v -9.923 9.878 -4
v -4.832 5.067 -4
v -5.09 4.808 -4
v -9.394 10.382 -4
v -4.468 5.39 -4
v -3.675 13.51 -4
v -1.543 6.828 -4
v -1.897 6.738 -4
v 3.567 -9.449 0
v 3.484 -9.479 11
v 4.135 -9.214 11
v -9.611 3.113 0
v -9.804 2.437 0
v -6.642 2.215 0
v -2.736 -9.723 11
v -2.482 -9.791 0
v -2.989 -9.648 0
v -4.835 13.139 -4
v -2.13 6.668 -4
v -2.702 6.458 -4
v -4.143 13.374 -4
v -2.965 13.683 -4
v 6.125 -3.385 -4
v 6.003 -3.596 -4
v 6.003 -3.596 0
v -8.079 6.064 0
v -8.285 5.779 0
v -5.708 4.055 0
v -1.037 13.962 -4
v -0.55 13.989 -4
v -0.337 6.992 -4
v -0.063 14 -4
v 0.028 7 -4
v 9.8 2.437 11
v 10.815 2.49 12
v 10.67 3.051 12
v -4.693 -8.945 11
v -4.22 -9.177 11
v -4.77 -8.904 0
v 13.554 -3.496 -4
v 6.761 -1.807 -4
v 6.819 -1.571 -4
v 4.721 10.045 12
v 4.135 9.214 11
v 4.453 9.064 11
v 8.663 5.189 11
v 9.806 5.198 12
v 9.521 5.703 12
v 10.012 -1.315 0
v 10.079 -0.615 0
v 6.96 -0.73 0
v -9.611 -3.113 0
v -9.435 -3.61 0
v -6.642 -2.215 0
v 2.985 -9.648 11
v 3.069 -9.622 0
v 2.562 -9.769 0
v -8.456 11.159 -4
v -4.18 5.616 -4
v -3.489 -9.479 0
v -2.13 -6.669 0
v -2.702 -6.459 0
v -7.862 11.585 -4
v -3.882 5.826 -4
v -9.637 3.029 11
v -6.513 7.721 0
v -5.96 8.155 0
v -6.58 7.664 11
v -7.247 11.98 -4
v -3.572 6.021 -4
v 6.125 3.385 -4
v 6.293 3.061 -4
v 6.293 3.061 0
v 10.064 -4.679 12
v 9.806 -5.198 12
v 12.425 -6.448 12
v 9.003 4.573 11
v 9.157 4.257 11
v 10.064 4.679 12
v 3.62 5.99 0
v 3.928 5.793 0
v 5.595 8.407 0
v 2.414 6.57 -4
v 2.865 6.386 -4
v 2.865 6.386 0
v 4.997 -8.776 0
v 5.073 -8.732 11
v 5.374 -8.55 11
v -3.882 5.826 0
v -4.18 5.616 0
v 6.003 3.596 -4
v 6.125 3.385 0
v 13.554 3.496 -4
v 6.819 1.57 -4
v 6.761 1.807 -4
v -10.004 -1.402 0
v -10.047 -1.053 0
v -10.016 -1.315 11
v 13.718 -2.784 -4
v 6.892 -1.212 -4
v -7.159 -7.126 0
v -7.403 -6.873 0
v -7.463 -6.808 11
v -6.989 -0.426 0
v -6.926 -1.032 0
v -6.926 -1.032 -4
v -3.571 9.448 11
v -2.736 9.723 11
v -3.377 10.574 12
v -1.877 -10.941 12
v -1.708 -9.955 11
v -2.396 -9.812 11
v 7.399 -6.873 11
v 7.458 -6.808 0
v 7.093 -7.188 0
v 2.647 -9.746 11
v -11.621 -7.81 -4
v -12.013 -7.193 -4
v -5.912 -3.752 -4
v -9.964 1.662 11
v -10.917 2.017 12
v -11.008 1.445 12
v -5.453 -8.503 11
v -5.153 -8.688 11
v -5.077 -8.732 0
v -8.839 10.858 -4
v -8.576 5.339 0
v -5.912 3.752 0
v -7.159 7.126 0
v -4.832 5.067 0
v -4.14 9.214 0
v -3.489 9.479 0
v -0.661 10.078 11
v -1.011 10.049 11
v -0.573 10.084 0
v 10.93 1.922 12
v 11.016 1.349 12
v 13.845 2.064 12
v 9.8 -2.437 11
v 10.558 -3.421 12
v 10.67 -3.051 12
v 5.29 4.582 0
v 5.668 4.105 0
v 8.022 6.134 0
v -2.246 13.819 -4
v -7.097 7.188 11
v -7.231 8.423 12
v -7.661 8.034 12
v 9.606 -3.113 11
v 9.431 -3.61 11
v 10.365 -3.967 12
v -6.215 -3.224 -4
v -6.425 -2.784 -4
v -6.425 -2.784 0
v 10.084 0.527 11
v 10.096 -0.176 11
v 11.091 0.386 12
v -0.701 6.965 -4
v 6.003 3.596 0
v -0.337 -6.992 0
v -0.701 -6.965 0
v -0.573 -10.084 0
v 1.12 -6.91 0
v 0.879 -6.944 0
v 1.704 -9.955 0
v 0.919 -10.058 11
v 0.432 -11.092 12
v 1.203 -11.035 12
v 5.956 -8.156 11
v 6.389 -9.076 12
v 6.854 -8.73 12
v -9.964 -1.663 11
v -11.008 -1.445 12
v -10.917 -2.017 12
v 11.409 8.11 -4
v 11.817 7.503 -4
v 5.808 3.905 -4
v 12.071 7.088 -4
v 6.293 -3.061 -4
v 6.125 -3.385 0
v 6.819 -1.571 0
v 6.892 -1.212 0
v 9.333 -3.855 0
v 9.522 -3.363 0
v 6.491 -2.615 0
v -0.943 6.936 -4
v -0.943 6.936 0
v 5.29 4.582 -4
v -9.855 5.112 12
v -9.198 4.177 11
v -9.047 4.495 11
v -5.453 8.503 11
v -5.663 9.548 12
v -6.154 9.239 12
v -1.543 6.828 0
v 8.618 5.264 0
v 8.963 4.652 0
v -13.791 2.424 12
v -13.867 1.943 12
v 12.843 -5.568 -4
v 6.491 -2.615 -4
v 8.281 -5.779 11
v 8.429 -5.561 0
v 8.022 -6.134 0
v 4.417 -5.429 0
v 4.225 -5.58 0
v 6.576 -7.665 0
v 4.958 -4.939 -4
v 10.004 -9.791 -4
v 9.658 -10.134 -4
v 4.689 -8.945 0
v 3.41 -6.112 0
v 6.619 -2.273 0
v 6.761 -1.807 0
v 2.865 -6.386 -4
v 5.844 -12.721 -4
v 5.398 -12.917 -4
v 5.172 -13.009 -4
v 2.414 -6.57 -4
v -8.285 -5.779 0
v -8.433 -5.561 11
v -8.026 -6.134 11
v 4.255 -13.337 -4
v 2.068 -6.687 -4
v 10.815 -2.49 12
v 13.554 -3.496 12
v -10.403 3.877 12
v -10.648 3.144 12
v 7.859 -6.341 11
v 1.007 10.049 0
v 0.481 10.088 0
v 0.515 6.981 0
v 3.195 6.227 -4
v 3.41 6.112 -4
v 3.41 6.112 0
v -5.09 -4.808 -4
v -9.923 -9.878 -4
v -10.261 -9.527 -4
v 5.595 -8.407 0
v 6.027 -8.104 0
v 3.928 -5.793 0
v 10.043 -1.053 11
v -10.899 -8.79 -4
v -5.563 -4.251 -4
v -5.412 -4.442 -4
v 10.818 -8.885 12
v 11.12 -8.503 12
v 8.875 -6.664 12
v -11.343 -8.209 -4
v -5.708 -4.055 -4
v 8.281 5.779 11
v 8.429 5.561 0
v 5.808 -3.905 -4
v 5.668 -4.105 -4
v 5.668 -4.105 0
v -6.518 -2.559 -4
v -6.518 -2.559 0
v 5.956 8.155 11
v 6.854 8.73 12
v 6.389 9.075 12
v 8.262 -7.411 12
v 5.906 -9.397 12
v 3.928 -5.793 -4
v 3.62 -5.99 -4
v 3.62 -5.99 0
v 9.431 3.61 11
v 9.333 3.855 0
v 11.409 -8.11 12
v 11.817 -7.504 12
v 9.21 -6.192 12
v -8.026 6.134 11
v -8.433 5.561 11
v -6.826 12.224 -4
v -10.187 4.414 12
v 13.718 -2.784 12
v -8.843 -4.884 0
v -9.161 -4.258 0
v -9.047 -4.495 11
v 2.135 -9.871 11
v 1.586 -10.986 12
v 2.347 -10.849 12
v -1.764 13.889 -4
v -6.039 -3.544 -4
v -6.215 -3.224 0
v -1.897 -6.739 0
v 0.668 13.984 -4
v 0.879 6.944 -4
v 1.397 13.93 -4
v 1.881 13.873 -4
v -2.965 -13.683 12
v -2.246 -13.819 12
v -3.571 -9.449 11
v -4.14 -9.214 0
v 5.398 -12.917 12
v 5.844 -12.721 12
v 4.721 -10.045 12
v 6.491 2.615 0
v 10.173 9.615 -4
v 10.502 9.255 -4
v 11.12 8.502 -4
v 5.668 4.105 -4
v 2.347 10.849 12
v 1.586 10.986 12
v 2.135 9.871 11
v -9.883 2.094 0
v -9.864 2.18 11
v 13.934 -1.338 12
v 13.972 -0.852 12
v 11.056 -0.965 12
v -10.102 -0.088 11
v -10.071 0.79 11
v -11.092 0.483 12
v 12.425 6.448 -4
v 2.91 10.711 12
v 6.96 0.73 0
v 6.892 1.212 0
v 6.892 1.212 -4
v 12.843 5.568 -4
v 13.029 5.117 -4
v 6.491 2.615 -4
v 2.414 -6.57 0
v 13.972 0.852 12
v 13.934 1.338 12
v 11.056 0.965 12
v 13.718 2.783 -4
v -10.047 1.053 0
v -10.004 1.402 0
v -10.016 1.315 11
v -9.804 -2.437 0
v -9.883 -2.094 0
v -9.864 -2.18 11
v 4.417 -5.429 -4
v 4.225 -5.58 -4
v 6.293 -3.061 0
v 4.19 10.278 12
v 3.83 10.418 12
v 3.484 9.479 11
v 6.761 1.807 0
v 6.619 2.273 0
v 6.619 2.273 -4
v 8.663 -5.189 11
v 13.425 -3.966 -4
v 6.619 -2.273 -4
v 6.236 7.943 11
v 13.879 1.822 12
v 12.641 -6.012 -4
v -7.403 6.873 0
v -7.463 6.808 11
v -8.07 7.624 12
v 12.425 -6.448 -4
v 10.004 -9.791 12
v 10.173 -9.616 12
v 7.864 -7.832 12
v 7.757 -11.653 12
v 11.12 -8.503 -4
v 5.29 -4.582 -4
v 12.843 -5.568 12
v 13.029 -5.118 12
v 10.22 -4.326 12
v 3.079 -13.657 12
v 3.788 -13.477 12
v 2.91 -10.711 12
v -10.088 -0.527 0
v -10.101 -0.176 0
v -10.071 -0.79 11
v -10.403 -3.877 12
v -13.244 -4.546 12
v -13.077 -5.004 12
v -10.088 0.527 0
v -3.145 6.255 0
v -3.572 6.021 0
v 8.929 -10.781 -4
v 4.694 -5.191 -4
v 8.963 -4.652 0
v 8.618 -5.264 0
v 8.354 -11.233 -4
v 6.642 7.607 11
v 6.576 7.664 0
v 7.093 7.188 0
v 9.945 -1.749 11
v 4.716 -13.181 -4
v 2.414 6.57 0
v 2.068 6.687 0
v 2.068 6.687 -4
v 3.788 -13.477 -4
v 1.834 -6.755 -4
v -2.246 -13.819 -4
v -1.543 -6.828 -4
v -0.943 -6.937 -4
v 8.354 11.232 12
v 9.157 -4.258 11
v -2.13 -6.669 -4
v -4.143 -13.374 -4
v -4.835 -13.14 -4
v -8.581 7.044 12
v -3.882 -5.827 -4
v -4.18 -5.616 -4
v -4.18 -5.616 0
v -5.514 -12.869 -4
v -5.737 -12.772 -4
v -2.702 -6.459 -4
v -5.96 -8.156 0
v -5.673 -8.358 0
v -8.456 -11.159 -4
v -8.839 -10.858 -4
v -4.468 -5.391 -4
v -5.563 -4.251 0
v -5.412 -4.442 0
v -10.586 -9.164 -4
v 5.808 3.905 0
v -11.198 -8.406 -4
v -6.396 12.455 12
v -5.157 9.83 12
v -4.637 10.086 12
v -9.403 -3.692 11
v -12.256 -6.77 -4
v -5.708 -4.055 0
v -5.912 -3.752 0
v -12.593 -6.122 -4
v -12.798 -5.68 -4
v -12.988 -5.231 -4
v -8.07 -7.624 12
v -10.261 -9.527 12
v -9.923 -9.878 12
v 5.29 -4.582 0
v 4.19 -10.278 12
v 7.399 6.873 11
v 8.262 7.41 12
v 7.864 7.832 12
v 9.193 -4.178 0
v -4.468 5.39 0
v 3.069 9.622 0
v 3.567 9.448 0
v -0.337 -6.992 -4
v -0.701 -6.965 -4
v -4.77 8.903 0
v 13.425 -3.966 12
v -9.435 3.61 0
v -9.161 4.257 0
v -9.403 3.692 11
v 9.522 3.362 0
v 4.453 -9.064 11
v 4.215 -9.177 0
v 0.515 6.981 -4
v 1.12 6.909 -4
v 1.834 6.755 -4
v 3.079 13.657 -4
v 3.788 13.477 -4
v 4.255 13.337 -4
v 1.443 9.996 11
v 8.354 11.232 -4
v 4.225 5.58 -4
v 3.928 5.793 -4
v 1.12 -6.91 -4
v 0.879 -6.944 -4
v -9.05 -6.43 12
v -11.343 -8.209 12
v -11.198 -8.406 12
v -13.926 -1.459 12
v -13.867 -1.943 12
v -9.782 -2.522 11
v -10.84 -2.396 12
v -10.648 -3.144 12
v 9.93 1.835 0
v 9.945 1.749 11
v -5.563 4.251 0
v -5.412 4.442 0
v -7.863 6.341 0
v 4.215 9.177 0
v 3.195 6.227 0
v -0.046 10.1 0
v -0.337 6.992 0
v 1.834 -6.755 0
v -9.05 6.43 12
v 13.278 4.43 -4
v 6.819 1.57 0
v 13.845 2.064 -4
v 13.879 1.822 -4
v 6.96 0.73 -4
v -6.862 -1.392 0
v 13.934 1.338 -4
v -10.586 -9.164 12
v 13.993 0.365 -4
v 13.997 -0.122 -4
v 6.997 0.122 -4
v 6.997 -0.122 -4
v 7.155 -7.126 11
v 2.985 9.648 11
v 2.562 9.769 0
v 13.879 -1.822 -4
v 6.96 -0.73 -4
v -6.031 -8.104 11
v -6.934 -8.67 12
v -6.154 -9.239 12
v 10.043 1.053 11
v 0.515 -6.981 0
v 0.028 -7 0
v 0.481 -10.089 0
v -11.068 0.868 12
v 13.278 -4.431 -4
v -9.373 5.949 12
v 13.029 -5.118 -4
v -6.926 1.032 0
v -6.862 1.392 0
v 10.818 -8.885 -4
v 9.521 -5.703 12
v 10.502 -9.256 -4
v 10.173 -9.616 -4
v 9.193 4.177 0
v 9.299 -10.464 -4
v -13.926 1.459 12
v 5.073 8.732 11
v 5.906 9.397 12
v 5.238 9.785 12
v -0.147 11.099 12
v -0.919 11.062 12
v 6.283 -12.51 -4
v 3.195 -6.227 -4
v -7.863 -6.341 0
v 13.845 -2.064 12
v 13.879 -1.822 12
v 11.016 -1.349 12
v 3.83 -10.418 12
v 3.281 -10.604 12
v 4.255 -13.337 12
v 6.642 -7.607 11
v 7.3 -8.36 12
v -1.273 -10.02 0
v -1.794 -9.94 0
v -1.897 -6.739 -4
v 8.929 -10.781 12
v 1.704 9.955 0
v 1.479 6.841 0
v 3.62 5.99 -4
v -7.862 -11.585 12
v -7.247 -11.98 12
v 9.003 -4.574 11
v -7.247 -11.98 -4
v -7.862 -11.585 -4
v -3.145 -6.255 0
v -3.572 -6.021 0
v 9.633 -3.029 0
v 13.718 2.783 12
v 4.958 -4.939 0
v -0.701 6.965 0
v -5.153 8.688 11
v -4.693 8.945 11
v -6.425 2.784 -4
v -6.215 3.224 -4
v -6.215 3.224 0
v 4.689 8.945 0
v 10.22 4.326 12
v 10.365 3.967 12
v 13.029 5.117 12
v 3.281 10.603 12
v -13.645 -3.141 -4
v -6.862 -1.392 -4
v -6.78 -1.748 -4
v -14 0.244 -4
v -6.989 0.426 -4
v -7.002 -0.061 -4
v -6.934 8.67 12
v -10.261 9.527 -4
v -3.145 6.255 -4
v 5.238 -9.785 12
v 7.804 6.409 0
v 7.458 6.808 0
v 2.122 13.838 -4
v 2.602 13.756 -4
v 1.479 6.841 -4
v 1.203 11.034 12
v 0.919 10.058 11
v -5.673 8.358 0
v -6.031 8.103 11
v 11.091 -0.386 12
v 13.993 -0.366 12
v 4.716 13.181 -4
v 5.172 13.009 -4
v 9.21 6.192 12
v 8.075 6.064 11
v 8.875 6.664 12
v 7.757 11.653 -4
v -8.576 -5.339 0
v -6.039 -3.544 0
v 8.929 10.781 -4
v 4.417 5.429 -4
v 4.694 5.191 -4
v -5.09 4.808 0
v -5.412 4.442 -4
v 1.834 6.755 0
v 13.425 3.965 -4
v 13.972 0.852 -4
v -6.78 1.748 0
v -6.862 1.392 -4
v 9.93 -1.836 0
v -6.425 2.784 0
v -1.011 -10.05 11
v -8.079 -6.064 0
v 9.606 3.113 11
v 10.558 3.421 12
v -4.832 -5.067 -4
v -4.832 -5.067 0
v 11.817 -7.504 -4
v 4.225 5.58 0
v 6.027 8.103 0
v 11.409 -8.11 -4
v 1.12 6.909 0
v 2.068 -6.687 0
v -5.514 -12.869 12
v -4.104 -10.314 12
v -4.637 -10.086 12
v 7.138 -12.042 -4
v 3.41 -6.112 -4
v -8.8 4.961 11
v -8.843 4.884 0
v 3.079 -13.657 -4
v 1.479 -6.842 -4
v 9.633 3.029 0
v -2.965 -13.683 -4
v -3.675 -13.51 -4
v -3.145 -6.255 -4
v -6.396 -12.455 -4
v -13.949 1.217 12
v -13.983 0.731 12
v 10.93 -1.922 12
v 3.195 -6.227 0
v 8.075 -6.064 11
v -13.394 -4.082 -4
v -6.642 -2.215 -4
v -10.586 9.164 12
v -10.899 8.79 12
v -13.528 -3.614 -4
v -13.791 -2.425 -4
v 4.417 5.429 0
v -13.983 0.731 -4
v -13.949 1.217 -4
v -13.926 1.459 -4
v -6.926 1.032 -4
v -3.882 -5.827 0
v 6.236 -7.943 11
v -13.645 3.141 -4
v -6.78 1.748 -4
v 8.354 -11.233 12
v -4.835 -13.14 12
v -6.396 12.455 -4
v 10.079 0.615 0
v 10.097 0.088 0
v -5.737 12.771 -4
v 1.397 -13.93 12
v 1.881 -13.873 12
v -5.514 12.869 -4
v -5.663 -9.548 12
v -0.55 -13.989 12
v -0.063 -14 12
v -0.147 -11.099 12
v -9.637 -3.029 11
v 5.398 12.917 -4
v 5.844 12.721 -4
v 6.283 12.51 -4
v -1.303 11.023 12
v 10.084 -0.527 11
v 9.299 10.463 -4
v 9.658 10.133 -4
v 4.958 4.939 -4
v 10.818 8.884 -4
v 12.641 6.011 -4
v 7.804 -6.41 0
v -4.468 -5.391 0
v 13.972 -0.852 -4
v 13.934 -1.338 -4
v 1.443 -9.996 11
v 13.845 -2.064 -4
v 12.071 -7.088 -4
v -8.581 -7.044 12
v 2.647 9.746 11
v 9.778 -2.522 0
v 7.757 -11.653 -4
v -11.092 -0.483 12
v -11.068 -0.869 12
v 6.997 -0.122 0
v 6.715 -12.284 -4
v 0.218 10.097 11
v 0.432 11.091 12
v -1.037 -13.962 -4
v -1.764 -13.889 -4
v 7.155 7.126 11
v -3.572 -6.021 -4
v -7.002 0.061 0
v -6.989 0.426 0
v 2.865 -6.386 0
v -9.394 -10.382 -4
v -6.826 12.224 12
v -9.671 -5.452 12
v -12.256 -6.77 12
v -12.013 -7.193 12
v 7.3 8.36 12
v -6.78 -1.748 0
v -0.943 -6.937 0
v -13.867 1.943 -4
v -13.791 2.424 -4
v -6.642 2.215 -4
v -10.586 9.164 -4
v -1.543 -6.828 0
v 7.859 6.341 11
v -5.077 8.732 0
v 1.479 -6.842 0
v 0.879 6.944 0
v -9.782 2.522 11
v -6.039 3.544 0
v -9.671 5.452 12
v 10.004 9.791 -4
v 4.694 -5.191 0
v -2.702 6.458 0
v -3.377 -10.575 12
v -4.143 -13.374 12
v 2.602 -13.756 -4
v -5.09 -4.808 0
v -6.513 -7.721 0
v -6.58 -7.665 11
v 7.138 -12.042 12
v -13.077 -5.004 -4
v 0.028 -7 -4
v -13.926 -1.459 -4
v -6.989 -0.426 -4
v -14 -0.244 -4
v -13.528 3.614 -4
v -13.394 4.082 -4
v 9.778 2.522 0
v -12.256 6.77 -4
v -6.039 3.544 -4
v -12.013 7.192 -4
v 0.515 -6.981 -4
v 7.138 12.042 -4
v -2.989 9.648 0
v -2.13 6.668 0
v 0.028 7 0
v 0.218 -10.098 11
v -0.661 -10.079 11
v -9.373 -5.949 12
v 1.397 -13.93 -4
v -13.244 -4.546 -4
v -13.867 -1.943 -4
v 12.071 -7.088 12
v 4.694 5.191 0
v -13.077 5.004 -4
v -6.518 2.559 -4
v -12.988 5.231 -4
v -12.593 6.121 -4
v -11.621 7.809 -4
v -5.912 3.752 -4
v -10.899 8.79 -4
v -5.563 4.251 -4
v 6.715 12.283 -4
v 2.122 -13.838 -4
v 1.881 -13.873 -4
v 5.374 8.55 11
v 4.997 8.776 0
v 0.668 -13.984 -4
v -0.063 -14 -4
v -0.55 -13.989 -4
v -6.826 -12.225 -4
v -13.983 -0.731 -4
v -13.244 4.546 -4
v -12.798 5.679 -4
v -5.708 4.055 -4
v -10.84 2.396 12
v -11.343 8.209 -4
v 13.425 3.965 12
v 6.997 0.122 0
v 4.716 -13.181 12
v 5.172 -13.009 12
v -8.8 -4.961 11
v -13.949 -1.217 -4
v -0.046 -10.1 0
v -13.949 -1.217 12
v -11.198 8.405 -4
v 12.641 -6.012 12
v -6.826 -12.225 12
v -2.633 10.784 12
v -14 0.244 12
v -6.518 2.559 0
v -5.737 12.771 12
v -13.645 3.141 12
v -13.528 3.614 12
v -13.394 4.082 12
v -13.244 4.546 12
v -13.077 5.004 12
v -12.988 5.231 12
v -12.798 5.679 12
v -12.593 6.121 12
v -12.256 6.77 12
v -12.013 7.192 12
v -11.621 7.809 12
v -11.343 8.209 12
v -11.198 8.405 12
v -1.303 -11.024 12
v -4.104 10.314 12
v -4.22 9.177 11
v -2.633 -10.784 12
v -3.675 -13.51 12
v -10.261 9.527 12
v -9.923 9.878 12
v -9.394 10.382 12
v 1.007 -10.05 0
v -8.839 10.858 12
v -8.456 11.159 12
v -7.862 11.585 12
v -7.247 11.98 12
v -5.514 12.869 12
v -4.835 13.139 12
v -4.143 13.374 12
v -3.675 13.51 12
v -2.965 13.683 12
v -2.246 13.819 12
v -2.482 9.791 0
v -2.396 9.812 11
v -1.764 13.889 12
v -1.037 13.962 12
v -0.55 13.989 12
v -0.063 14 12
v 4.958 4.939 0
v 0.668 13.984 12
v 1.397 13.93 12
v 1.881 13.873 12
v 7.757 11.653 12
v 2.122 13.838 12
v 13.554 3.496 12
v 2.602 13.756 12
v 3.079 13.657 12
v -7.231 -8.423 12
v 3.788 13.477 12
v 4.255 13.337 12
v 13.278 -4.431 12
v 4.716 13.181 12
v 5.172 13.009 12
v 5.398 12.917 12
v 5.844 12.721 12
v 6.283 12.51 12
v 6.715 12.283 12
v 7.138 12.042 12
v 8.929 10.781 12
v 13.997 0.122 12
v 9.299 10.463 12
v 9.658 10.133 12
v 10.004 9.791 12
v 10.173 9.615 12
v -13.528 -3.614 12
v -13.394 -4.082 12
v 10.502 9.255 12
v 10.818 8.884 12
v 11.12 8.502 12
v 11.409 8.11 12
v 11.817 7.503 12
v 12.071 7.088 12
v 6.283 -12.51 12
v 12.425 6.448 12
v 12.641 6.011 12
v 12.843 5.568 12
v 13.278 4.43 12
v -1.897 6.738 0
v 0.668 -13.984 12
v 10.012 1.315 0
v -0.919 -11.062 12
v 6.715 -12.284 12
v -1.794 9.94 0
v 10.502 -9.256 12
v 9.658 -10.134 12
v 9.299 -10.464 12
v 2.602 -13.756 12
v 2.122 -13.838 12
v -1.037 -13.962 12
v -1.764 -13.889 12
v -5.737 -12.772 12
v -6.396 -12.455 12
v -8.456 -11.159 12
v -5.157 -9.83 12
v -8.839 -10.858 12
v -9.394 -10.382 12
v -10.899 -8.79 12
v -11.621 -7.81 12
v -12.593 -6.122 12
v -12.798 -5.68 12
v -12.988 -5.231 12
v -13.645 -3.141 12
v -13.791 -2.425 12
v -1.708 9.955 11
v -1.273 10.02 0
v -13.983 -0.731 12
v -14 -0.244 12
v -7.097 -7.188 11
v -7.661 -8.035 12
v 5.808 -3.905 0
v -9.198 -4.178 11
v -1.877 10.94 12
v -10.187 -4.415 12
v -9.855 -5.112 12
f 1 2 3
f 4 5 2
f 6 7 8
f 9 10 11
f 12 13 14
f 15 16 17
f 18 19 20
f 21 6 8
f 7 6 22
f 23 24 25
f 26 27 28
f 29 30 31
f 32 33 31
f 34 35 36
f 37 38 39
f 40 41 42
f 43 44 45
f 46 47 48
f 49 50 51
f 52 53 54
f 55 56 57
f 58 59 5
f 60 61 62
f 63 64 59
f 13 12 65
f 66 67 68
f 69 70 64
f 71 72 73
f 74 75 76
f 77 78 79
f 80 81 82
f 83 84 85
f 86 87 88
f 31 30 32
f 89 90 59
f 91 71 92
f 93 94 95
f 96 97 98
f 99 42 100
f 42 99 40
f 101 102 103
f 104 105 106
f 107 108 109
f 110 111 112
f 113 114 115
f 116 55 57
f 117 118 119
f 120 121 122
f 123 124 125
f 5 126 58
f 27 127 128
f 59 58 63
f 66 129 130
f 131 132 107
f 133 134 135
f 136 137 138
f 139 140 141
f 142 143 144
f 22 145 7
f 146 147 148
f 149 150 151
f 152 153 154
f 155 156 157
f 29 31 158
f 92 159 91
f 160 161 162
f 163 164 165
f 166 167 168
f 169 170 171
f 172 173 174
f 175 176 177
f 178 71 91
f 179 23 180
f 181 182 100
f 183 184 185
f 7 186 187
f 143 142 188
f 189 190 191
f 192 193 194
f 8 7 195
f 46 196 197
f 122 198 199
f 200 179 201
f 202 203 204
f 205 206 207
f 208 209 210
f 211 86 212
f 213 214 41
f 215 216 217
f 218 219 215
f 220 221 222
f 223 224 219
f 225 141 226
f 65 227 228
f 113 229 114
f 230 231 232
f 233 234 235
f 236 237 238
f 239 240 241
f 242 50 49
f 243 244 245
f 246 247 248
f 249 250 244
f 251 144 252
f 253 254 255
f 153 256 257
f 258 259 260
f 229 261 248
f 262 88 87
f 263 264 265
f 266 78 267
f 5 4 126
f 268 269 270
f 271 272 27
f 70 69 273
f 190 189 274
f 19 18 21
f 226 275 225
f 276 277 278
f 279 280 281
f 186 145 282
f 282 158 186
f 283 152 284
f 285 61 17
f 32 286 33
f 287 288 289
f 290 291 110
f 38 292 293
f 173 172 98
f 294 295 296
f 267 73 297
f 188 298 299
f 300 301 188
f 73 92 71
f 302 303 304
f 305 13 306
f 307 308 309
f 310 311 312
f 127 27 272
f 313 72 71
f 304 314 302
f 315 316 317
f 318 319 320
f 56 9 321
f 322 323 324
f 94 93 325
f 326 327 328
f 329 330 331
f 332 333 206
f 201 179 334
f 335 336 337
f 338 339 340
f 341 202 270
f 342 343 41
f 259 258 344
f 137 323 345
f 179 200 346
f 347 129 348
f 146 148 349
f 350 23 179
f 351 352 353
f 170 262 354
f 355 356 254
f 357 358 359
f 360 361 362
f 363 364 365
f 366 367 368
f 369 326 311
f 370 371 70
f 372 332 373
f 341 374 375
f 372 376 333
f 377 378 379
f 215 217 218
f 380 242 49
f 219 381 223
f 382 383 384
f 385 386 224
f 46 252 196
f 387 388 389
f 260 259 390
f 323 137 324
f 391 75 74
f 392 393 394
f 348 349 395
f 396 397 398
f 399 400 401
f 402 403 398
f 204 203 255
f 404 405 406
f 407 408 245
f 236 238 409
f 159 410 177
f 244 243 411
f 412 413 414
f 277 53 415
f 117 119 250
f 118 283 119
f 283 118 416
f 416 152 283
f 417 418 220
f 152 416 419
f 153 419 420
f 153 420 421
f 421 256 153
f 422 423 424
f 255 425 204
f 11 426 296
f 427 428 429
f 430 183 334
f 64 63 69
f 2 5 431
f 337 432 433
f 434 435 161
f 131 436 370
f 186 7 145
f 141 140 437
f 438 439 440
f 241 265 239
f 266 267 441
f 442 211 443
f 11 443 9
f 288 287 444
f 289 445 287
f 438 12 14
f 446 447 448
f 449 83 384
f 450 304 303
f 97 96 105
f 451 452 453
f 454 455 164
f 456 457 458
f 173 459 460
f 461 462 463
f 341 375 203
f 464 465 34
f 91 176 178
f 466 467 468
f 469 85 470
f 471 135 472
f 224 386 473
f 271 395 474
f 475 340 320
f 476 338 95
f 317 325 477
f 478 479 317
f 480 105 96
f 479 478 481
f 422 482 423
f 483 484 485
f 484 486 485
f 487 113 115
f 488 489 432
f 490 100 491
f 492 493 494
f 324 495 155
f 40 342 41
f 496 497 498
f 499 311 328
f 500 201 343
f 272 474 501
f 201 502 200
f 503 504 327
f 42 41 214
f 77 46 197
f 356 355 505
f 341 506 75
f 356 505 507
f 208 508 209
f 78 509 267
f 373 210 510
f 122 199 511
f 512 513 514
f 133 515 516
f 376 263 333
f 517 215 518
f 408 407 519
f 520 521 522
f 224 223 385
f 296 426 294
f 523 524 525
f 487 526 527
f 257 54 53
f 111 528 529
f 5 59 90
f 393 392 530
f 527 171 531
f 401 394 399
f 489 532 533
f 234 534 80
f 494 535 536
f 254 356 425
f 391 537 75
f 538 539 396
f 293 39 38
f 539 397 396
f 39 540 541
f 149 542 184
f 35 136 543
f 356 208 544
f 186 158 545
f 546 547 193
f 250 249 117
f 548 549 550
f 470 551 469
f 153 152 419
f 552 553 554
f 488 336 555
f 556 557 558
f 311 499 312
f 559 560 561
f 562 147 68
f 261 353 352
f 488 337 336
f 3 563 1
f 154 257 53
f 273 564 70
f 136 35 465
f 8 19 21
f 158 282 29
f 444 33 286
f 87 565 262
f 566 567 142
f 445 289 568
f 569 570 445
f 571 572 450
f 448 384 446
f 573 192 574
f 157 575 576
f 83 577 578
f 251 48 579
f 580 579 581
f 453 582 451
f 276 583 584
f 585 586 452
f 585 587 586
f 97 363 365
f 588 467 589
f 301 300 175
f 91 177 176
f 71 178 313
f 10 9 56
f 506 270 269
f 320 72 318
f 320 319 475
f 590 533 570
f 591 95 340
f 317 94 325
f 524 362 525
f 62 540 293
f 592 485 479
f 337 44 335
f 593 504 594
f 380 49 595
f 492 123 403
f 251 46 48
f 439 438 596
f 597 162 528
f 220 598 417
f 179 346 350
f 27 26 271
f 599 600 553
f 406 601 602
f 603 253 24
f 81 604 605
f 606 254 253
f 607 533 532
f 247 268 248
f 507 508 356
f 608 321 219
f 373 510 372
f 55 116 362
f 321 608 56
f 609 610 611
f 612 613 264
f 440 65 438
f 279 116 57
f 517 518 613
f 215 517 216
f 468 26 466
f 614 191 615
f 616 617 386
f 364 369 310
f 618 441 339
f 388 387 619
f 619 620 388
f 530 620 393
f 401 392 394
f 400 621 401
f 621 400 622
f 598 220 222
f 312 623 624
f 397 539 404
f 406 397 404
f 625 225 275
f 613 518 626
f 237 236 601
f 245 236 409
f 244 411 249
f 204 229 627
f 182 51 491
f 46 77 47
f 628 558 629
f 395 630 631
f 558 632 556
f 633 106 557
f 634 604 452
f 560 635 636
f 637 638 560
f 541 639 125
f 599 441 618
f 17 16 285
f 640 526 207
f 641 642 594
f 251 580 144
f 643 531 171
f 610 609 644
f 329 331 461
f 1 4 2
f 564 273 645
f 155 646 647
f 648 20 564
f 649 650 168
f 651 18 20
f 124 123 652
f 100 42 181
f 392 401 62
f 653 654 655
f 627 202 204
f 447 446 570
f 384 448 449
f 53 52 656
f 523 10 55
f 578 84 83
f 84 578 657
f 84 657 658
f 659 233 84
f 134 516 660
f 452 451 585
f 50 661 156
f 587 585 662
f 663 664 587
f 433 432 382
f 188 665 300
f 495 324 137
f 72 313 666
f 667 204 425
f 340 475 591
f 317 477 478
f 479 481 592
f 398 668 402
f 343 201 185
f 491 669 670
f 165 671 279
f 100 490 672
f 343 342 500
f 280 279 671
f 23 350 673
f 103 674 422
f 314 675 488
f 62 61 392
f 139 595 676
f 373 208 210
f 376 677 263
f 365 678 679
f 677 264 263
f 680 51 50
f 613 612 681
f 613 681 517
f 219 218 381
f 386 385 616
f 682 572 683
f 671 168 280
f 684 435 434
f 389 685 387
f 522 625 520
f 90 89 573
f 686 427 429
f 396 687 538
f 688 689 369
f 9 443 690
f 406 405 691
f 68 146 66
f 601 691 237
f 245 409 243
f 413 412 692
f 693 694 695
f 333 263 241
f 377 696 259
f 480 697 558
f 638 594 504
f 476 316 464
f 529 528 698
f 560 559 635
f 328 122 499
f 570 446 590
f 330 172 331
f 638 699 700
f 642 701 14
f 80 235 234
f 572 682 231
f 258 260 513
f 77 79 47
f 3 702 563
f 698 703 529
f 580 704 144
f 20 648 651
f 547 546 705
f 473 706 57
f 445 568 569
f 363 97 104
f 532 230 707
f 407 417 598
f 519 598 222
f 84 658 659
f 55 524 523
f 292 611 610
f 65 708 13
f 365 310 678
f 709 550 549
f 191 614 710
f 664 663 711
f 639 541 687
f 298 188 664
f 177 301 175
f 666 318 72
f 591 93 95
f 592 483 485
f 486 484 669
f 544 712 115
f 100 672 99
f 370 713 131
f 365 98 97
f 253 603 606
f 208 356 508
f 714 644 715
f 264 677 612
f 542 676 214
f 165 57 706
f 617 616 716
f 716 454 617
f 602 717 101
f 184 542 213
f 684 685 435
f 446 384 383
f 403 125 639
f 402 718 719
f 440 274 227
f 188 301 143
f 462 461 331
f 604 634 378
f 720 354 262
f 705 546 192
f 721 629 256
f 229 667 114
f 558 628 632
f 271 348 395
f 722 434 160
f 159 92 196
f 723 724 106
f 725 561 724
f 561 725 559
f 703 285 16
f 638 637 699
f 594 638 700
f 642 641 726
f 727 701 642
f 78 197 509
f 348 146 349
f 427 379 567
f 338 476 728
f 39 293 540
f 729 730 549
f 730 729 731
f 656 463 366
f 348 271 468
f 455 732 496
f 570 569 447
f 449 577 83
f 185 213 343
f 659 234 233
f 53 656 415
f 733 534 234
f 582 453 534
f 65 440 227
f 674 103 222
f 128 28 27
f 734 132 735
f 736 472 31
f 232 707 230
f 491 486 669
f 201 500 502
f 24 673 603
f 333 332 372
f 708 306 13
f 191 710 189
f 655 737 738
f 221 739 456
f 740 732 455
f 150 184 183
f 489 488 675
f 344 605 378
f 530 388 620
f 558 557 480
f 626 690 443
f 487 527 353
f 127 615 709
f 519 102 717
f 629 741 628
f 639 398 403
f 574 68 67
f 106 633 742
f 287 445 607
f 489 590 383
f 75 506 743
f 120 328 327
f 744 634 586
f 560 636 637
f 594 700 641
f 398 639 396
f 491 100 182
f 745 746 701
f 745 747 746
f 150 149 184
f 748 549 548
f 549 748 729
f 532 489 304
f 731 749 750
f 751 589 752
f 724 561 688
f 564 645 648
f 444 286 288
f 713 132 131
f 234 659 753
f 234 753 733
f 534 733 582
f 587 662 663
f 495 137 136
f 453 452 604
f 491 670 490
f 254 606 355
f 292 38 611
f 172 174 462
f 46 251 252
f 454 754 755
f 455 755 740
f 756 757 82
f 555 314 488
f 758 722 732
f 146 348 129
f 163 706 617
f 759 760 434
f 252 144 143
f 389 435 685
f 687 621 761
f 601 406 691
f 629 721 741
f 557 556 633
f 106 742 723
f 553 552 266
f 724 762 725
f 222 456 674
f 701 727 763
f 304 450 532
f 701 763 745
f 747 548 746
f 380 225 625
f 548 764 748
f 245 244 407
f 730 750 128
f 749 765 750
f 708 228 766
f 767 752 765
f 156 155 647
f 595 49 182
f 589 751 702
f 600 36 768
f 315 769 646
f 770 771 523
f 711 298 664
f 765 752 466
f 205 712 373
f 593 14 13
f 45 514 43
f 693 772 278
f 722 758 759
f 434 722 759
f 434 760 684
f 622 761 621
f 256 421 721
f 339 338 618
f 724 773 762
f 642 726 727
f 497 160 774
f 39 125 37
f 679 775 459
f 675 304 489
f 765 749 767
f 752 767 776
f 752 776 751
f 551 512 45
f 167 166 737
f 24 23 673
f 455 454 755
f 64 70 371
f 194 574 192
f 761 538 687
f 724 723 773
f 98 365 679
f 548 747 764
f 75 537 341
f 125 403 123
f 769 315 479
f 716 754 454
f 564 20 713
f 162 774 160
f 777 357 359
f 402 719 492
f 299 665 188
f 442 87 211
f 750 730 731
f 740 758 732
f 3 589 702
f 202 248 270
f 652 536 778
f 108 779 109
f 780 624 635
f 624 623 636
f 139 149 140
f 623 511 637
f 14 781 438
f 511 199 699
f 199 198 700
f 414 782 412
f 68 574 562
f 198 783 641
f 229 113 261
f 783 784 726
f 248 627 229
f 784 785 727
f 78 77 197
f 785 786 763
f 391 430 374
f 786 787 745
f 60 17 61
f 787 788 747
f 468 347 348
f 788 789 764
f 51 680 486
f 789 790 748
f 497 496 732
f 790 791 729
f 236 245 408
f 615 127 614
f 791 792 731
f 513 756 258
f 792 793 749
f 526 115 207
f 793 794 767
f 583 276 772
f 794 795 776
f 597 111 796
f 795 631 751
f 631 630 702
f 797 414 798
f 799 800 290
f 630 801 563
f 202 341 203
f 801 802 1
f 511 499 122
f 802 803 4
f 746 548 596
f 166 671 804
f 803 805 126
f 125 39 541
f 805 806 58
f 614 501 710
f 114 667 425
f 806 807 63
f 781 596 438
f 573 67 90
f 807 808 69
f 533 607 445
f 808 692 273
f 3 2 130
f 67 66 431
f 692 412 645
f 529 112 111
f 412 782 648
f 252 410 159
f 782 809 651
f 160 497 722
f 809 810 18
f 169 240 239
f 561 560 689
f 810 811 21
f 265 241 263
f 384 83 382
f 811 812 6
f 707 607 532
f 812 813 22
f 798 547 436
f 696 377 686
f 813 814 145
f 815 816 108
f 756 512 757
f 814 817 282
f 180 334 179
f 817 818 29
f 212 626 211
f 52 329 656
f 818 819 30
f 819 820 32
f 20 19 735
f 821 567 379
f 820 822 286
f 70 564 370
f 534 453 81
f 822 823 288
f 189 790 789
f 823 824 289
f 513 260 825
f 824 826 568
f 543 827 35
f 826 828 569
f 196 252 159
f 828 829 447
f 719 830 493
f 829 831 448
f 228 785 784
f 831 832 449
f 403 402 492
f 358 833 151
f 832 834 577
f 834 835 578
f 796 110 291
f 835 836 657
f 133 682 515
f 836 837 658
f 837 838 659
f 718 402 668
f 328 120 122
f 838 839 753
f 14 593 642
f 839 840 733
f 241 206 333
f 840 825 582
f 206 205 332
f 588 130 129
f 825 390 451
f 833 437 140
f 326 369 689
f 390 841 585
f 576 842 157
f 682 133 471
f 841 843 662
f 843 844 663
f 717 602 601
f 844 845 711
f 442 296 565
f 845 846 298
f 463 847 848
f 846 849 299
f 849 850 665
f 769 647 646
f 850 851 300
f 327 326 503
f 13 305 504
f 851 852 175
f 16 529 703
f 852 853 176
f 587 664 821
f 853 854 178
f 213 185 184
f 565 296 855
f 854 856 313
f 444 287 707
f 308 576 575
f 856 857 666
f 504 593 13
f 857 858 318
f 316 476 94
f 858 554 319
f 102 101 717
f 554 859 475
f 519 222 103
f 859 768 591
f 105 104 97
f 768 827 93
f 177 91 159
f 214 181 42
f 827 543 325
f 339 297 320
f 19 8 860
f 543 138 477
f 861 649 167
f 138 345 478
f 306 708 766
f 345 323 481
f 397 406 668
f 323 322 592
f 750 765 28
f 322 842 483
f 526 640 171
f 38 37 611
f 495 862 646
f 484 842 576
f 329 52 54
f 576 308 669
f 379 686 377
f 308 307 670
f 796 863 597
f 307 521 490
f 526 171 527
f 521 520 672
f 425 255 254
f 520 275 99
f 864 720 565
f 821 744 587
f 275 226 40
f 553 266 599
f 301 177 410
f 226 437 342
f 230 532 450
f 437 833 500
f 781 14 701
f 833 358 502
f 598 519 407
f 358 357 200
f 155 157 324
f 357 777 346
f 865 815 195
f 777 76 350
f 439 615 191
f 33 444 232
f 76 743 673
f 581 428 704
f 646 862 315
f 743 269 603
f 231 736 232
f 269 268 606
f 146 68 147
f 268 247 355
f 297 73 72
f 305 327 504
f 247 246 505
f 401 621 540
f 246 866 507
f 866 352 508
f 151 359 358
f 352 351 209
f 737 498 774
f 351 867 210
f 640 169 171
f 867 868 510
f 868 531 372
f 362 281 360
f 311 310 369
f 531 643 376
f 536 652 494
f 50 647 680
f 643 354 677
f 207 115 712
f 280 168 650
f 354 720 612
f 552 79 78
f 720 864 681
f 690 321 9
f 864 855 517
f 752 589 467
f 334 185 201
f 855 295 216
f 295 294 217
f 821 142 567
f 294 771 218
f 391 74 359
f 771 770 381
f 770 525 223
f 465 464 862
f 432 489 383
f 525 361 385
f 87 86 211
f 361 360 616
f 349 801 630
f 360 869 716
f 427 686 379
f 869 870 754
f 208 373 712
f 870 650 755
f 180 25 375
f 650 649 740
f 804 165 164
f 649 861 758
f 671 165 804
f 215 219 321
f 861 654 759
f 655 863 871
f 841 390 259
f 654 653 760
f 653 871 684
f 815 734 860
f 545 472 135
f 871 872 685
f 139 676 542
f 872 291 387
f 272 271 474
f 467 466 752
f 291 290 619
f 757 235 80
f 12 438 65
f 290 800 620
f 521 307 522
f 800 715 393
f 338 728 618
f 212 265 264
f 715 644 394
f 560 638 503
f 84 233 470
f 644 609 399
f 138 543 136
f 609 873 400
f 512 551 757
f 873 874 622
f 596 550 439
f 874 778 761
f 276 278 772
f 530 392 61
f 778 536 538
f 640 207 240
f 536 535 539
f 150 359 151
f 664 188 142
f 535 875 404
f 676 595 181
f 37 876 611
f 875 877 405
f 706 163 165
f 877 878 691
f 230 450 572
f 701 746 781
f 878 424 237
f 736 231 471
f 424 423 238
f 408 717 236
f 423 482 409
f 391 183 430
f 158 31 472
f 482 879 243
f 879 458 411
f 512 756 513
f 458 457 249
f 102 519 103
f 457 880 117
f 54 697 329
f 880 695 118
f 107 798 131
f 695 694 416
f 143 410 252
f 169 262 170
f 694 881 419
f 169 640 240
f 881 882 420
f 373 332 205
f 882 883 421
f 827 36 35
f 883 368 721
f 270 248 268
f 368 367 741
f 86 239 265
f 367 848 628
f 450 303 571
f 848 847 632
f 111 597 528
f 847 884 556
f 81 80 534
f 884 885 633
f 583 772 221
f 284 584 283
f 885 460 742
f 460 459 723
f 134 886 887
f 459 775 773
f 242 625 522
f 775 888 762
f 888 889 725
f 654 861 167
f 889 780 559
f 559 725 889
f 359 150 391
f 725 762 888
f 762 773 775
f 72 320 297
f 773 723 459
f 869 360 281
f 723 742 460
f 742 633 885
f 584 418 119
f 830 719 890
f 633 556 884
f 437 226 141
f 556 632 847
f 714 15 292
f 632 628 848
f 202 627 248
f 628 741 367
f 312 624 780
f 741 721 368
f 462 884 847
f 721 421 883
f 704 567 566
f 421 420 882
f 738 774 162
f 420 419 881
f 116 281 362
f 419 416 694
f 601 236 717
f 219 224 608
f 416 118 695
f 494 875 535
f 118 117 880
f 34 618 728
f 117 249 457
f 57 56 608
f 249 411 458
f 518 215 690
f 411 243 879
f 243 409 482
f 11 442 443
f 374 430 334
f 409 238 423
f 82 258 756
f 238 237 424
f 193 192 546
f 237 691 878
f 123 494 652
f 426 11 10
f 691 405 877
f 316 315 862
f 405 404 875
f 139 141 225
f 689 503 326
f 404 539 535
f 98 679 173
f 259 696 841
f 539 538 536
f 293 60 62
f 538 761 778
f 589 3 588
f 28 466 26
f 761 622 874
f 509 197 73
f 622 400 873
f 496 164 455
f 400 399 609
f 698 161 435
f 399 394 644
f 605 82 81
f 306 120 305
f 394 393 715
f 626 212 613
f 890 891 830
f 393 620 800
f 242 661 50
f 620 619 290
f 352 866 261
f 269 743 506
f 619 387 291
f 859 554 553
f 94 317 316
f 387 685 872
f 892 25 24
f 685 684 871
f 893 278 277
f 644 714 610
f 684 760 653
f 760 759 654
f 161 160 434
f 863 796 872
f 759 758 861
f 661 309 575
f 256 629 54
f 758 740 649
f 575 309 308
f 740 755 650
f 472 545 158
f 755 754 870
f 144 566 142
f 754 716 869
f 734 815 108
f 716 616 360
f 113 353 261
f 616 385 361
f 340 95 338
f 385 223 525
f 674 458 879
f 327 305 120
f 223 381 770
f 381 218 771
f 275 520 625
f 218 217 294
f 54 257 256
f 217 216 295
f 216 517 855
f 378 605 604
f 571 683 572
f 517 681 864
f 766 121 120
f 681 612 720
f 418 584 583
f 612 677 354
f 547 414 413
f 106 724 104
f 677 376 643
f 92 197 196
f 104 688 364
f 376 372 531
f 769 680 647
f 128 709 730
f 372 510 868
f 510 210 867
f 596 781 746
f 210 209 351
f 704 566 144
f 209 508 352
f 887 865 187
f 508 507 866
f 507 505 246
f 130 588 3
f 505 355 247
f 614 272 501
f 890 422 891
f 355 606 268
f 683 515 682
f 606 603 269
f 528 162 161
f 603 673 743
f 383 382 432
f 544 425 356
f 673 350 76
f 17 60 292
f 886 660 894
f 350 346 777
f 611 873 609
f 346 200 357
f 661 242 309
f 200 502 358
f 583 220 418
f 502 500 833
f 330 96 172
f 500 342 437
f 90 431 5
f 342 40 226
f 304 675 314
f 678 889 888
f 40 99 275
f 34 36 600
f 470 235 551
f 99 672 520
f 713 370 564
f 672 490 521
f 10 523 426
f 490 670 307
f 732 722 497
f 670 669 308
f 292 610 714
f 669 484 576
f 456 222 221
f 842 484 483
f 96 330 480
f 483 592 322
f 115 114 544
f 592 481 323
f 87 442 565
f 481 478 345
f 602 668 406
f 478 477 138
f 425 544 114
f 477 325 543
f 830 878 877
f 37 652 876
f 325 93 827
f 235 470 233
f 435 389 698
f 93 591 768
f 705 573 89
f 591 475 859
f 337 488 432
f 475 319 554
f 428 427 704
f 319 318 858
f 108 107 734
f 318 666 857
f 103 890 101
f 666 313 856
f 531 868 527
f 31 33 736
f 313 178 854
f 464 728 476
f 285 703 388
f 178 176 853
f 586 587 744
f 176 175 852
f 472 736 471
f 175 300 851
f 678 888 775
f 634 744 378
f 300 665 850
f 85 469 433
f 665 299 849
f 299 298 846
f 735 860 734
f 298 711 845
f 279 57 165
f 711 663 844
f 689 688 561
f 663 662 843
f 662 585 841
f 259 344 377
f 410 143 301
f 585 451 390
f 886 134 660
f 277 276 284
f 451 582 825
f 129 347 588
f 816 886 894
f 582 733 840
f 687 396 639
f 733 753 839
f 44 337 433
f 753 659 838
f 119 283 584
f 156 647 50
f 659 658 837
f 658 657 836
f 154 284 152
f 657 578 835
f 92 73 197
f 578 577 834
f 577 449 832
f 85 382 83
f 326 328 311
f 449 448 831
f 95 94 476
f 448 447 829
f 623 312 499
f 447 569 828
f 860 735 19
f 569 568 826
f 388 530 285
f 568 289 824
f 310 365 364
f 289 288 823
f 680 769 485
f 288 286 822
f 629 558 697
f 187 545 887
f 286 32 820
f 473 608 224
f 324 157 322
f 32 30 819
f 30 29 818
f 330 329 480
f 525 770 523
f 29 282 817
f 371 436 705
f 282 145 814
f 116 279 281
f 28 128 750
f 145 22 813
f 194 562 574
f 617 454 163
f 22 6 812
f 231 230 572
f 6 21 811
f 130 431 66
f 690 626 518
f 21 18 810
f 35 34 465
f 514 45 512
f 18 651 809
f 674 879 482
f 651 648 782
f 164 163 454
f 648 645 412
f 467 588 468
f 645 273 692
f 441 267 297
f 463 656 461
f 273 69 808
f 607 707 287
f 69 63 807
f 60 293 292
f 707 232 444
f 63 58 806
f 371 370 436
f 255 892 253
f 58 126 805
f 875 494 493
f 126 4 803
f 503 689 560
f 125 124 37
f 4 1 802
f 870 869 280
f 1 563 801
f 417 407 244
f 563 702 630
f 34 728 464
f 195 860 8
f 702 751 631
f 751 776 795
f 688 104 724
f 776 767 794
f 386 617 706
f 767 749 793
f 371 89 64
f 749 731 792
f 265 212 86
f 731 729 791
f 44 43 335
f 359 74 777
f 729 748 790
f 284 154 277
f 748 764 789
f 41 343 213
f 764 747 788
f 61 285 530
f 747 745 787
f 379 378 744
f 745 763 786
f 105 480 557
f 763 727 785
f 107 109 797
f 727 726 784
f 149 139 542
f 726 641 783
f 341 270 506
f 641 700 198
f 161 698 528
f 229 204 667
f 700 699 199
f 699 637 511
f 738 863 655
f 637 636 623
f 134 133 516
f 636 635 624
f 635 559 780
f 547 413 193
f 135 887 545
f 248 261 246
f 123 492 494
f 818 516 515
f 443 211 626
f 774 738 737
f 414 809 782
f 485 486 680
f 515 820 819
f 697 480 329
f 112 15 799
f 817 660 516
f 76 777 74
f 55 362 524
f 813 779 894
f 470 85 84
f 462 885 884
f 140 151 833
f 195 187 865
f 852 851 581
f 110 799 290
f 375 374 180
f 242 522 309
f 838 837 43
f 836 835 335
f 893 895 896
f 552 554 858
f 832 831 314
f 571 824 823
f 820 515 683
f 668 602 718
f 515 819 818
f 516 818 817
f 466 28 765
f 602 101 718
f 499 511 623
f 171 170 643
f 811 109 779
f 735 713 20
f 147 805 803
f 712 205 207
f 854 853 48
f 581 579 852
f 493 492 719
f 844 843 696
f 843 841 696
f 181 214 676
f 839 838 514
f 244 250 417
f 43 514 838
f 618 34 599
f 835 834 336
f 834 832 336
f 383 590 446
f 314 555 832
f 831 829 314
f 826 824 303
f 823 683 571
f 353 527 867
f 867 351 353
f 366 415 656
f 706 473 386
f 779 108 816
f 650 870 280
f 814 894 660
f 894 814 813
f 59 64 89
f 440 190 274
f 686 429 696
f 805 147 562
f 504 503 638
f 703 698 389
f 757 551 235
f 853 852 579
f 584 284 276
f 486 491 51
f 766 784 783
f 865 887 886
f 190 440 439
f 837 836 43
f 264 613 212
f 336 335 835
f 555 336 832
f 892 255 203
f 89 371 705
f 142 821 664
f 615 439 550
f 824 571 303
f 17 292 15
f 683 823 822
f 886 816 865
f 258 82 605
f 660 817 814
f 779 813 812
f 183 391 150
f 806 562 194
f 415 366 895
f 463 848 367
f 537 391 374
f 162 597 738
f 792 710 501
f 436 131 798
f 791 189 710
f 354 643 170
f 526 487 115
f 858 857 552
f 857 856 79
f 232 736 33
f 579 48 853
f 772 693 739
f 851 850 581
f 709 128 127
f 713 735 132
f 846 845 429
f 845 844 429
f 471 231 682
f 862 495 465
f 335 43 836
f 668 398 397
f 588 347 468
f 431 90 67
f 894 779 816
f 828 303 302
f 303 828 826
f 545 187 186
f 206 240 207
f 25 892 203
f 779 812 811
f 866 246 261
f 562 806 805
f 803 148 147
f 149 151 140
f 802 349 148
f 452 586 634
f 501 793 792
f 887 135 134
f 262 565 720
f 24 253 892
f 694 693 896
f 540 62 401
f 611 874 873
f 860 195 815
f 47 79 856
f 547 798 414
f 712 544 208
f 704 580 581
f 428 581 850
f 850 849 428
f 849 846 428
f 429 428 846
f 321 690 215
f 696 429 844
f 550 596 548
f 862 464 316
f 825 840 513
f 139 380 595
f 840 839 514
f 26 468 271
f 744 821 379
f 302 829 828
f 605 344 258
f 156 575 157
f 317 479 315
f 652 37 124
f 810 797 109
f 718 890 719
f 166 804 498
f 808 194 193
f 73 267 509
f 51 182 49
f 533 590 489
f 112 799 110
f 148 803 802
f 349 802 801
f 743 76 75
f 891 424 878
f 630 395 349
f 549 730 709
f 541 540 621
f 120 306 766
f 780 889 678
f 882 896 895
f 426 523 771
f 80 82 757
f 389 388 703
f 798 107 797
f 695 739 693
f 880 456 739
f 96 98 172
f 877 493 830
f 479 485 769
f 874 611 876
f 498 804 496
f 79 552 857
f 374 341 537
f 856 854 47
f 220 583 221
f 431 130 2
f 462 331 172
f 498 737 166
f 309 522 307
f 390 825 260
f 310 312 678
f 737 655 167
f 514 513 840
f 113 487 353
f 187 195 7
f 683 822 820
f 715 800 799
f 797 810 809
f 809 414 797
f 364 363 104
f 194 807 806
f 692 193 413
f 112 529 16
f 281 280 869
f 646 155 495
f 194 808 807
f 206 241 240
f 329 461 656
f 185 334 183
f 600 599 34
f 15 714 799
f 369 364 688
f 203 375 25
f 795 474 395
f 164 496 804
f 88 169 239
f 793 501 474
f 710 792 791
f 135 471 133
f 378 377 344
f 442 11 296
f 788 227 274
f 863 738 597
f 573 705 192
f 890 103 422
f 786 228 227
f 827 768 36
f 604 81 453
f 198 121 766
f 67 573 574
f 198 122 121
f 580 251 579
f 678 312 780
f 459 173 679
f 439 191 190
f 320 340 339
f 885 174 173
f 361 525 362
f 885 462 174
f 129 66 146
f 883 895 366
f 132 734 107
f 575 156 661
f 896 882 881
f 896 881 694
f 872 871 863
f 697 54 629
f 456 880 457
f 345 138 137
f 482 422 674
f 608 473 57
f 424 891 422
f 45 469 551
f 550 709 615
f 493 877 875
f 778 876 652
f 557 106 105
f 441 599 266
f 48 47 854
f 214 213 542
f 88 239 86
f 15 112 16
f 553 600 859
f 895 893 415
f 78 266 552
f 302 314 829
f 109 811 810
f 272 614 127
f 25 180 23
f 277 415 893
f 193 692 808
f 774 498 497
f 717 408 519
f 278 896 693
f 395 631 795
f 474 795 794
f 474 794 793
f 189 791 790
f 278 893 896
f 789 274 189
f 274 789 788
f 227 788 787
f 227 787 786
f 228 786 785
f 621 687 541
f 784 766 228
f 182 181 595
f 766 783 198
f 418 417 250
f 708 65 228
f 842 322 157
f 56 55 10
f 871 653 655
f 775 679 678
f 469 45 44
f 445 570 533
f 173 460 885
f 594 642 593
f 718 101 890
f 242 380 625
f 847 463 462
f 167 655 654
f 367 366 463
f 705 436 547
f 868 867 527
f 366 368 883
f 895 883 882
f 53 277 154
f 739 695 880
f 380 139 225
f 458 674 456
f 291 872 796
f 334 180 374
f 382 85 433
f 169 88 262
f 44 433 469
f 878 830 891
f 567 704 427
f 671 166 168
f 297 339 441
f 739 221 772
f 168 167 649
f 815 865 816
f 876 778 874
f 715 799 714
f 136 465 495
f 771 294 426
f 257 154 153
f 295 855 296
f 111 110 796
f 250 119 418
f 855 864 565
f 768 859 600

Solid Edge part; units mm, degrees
sketch "Sketch1" plane through (0, 0, 0) normal (0, 0, 1) x (1, 0, 0)
  circle A0 centre (0, 0) radius 10.1
  circle A1 centre (0, 0) radius 14
extrude "Protrusion1" add sketch "Sketch1" along normal blind 12
sketch "Sketch2" plane through (0, 0, 0) normal (0, 0, -1) x (1, 0, 0)
  circle A0 centre (0, 0) radius 14
extrude "ExtrudedProtrusion_2" add sketch "Sketch2" along normal blind 4
sketch "Sketch3" plane through (0, 0, 0) normal (0, 0, 1) x (1, 0, 0)
  circle A0 centre (0, 0) radius 7
  dimension "D1" = 14
extrude "Cutout1" cut sketch "Sketch3" against normal through all
chamfer "Chamfer_1" distance 1 angle 45 1 edges at (-10.1, 0, 12)
